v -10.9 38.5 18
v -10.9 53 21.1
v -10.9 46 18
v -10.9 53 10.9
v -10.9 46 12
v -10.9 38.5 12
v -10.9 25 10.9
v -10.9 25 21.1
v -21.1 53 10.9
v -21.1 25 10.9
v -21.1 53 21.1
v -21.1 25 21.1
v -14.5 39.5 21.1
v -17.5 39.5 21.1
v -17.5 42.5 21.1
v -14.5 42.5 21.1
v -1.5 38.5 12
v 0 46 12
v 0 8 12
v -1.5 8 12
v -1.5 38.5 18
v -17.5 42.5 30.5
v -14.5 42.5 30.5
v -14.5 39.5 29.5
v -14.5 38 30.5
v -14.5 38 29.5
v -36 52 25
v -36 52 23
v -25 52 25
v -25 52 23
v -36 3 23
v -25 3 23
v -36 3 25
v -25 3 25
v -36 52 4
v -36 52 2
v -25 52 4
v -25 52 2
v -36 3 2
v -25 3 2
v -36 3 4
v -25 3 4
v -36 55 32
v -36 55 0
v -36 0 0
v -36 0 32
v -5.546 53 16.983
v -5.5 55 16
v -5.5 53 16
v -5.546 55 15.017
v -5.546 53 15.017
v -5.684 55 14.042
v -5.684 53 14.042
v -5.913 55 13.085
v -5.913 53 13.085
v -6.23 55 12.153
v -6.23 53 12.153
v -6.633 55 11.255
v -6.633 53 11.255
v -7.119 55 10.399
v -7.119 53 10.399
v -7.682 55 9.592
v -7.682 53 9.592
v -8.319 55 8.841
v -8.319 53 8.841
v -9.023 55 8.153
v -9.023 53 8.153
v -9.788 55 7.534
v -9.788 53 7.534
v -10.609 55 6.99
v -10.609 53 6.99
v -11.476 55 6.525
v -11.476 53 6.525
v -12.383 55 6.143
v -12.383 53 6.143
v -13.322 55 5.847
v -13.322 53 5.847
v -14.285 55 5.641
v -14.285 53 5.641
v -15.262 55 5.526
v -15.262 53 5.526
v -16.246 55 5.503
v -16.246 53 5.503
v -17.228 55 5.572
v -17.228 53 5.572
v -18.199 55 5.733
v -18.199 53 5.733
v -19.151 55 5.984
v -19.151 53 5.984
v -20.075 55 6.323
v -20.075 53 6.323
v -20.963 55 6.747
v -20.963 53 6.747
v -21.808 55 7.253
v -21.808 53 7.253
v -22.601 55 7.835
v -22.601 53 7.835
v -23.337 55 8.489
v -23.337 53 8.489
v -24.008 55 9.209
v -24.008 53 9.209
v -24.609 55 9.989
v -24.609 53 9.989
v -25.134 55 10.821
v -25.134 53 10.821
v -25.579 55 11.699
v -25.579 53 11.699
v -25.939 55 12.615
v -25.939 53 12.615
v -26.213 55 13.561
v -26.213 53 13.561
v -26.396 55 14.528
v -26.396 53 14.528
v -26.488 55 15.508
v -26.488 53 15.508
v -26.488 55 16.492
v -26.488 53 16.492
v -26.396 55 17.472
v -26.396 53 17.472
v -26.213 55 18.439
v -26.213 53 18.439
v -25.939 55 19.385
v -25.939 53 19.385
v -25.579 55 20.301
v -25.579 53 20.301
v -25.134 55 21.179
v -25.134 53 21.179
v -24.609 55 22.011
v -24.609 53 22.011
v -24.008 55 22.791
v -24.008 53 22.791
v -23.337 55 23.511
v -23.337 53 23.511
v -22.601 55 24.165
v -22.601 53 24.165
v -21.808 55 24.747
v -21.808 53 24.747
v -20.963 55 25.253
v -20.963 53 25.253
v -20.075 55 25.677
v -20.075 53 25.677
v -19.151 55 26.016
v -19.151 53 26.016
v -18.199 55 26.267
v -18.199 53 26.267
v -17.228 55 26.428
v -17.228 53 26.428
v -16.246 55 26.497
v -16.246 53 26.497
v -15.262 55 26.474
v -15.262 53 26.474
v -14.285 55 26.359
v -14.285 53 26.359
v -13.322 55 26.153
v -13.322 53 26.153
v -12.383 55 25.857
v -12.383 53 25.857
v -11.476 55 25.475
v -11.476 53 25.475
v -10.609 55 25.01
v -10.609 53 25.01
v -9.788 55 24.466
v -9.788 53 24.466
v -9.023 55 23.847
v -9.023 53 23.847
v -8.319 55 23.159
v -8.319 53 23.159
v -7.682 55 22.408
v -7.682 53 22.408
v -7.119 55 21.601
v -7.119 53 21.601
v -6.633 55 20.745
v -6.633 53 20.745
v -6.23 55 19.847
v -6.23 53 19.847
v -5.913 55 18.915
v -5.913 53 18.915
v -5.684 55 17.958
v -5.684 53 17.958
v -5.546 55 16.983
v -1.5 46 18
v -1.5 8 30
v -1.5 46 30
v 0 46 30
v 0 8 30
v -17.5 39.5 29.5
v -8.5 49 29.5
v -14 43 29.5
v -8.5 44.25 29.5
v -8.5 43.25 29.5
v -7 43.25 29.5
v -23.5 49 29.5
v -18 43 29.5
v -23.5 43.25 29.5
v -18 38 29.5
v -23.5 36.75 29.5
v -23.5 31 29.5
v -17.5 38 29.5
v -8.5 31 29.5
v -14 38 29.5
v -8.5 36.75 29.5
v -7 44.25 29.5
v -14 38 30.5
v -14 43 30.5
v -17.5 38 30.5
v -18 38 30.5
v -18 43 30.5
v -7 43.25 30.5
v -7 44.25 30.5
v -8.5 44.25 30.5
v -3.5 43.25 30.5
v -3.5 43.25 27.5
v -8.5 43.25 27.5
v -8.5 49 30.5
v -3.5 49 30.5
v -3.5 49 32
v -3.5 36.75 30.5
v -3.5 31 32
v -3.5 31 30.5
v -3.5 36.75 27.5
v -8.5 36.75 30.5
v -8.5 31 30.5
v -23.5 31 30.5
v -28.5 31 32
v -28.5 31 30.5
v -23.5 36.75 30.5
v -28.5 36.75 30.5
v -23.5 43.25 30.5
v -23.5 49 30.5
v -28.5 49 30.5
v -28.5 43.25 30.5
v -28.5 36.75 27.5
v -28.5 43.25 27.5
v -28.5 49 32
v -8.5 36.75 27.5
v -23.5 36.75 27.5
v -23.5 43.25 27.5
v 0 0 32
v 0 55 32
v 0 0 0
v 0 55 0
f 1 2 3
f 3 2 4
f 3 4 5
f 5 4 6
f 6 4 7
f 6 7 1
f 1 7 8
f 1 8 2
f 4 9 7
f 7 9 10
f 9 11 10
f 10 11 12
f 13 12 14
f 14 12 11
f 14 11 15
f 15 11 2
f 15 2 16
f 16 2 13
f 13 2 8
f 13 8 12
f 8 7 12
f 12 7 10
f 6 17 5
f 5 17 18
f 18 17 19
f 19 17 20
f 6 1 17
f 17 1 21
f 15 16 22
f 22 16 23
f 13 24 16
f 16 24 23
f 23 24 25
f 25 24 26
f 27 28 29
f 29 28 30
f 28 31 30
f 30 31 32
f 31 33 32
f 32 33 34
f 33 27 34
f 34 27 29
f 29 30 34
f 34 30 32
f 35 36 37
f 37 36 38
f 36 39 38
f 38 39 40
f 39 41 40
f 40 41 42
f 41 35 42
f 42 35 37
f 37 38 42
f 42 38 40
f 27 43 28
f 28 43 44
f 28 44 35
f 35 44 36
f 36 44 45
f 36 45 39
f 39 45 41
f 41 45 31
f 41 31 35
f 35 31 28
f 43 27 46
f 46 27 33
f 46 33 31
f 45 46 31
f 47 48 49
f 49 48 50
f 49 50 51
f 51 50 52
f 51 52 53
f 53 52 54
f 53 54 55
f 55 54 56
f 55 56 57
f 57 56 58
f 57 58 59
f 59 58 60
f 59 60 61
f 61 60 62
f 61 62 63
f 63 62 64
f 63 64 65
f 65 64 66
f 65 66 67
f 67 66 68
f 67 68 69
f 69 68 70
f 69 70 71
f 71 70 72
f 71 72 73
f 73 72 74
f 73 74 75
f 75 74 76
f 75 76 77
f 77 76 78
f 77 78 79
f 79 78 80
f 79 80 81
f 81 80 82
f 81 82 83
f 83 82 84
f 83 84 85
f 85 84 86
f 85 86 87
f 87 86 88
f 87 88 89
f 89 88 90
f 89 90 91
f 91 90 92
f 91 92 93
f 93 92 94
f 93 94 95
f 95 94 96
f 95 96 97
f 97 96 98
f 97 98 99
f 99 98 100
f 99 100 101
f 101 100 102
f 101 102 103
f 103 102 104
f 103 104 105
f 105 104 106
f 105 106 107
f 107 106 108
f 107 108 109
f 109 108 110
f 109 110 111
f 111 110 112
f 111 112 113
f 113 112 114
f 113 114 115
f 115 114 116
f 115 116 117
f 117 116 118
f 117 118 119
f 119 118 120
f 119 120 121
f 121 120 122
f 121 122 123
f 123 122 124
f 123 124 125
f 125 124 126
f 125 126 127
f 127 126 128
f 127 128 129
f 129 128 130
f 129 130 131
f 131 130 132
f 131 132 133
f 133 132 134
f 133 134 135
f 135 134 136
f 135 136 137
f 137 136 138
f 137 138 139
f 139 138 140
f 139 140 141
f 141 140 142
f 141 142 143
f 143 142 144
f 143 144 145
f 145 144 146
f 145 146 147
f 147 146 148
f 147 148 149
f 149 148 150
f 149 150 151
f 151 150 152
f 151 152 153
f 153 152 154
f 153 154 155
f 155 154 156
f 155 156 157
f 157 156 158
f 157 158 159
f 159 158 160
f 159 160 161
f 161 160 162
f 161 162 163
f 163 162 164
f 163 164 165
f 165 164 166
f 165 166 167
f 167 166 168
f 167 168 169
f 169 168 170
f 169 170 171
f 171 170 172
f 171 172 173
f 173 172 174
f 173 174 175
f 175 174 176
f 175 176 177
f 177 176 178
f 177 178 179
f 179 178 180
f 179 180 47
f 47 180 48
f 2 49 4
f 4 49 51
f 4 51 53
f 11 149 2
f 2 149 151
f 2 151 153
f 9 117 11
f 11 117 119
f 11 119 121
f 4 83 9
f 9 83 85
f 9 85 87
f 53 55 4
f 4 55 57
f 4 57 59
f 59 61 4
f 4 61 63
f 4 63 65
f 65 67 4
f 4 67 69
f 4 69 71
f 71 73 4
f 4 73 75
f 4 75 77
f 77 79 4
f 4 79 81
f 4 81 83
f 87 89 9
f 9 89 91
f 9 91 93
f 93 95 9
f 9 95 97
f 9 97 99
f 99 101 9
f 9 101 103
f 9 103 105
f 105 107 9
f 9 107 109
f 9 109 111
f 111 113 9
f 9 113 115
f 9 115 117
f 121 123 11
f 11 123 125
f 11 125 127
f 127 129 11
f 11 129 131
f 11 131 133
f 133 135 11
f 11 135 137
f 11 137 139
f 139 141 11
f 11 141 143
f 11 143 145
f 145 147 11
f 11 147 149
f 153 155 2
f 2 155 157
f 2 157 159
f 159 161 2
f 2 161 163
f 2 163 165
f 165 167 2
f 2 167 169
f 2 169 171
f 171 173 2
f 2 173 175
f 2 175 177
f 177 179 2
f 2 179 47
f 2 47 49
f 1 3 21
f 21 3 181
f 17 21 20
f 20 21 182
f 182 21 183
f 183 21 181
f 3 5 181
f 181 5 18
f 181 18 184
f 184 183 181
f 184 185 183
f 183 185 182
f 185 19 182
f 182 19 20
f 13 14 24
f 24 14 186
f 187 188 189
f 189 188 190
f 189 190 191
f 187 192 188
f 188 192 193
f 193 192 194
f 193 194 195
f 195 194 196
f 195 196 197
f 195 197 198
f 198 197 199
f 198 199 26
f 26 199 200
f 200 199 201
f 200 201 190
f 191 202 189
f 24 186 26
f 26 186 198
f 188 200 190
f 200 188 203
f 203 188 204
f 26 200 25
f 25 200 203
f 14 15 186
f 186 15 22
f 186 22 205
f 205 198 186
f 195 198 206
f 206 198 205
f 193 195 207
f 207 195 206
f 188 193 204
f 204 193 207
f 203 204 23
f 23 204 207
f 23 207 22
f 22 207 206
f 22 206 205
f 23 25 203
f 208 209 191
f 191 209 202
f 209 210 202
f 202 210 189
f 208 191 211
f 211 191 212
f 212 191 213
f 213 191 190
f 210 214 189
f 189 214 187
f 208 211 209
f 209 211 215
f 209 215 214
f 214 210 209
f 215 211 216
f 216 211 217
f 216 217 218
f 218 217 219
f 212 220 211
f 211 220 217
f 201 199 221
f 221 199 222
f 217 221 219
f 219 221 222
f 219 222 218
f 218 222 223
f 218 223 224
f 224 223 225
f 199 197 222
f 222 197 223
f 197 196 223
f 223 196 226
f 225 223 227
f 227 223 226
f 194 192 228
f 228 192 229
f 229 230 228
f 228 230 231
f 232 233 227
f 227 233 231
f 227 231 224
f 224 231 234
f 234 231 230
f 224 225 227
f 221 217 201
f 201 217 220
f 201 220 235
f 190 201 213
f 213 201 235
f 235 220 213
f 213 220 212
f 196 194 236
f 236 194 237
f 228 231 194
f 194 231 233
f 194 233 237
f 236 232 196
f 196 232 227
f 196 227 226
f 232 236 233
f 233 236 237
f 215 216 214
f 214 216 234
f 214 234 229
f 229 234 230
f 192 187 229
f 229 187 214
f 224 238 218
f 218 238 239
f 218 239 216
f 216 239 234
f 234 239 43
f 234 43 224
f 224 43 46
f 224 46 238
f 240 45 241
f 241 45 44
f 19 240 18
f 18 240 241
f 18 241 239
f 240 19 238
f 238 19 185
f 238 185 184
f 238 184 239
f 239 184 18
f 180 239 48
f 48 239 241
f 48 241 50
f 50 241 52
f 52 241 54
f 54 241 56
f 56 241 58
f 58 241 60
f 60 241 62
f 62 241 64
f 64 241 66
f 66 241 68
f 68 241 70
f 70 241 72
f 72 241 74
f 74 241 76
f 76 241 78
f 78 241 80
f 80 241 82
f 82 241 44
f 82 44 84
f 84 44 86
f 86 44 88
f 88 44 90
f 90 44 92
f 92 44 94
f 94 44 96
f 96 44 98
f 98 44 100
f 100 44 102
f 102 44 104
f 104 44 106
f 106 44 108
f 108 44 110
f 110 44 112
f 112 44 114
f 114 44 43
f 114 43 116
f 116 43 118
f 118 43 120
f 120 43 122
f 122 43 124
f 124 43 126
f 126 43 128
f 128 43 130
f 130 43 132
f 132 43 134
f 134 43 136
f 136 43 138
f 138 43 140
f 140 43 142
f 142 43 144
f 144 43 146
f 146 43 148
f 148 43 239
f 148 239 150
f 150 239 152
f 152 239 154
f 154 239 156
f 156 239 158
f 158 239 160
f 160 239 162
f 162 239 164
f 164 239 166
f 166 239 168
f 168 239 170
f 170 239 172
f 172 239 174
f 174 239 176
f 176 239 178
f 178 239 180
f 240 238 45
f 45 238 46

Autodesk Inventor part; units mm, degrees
ref_plane "YZ Plane" through (0, 0, 0) normal (1, 0, 0) x (0, 1, 0)
ref_plane "XZ Plane" through (0, 0, 0) normal (0, 1, 0) x (-1, 0, 0)
ref_plane "XY Plane" through (0, 0, 0) normal (0, 0, 1) x (1, 0, 0)
sketch "Sketch1" plane through (0, 0, 0) normal (0, 1, 0) x (-1, 0, 0)
  line L0 (32, 32) -> (0, 32)
  line L1 (0, 32) -> (0, 0)
  line L2 (0, 0) -> (32, 0)
  line L3 (32, 0) -> (32, 32)
extrude "Extrusion1" add sketch "Sketch1" along normal blind 55
sketch "Sketch3" plane through (-32, 0, 32) normal (0, 0, 1) x (1, 0, 0)
  line L0 (3.5, 49) -> (28.5, 49)
  line L1 (28.5, 49) -> (28.5, 31)
  line L2 (28.5, 31) -> (3.5, 31)
  line L3 (3.5, 31) -> (3.5, 49)
  line L4 (3.5, 49) -> (3.5, 43.25)
  line L5 (3.5, 36.75) -> (3.5, 43.25)
  line L6 (28.5, 49) -> (28.5, 43.25)
  line L7 (28.5, 36.75) -> (28.5, 43.25)
  line L8 (3.5, 43.25) -> (3.5, 36.75)
  line L9 (28.5, 43.25) -> (28.5, 36.75)
  point P0 (32, 0)
extrude "Extrusion3" cut sketch "Sketch3" against normal blind 2.5
sketch "Sketch4" plane through (-32, 0, 29.5) normal (0, 0, 1) x (1, 0, 0)
  line L0 (3.5, 49) -> (28.5, 49) projected
  line L1 (3.5, 49) -> (3.5, 43.25)
  line L2 (28.5, 31) -> (3.5, 31) projected
  line L3 (3.5, 36.75) -> (3.5, 31)
  line L4 (3.5, 31) -> (28.5, 31)
  line L5 (28.5, 31) -> (28.5, 36.75)
  line L6 (28.5, 49) -> (28.5, 31) projected
  line L7 (28.5, 43.25) -> (28.5, 49)
  line L8 (28.5, 49) -> (3.5, 49)
  point P0 (32, 0)
sketch "Sketch5" plane through (-32, 0, 29.5) normal (0, 0, 1) x (1, 0, 0)
  line L0 (3.5, 43.25) -> (8.5, 43.25)
  line L1 (8.5, 43.25) -> (8.5, 36.75)
  line L2 (8.5, 36.75) -> (3.5, 36.75)
  line L3 (3.5, 36.75) -> (3.5, 43.25)
  point P0 (32, 0)
sketch "Sketch6" plane through (-32, 0, 29.5) normal (0, 0, 1) x (1, 0, 0)
  line L0 (28.5, 43.25) -> (23.5, 43.25)
  line L1 (23.5, 43.25) -> (23.5, 36.75)
  line L2 (23.5, 36.75) -> (28.5, 36.75)
  line L3 (28.5, 36.75) -> (28.5, 43.25)
  point P0 (32, 0)
extrude "Extrusion4" cut sketch "Sketch5" against normal blind 2
extrude "Extrusion5" cut sketch "Sketch6" against normal blind 2
sketch "Sketch7" plane through (-32, 0, 29.5) normal (0, 0, 1) x (1, 0, 0)
  line L0 (3.5, 43.25) -> (8.5, 43.25) projected
  line L1 (3.5, 43.25) -> (3.5, 49) projected
  line L2 (8.5, 43.25) -> (3.5, 43.25)
  line L3 (3.5, 43.25) -> (3.5, 49)
  line L4 (3.5, 49) -> (8.5, 49)
  line L5 (8.5, 49) -> (8.5, 43.25)
  point P0 (32, 0)
sketch "Sketch8" plane through (-32, 0, 29.5) normal (0, 0, 1) x (1, 0, 0)
  line L0 (8.5, 36.75) -> (3.5, 36.75) projected
  line L1 (28.5, 31) -> (3.5, 31) projected
  line L2 (8.5, 36.75) -> (3.5, 36.75)
  line L3 (3.5, 36.75) -> (3.5, 31)
  line L4 (3.5, 31) -> (8.5, 31)
  line L5 (8.5, 31) -> (8.5, 36.75)
  point P0 (32, 0)
sketch "Sketch9" plane through (-32, 0, 29.5) normal (0, 0, 1) x (1, 0, 0)
  line L0 (28.5, 36.75) -> (23.5, 36.75) projected
  line L1 (28.5, 31) -> (3.5, 31) projected
  line L2 (23.5, 36.75) -> (28.5, 36.75)
  line L3 (28.5, 36.75) -> (28.5, 31)
  line L4 (28.5, 31) -> (23.5, 31)
  line L5 (23.5, 31) -> (23.5, 36.75)
  point P0 (32, 0)
sketch "Sketch10" plane through (-32, 0, 29.5) normal (0, 0, 1) x (1, 0, 0)
  line L0 (23.5, 43.25) -> (28.5, 43.25) projected
  line L1 (28.5, 49) -> (28.5, 43.25) projected
  line L2 (23.5, 43.25) -> (28.5, 43.25)
  line L3 (28.5, 43.25) -> (28.5, 49)
  line L4 (28.5, 49) -> (23.5, 49)
  line L5 (23.5, 49) -> (23.5, 43.25)
  point P0 (32, 0)
extrude "Extrusion6" add sketch "Sketch7" along normal blind 1
extrude "Extrusion7" add sketch "Sketch8" along normal blind 1
extrude "Extrusion8" add sketch "Sketch9" along normal blind 1
extrude "Extrusion9" add sketch "Sketch10" along normal blind 1
sketch "Sketch11" plane through (-32, 0, 30.5) normal (0, 0, 1) x (1, 0, 0)
  line L0 (23.5, 43.25) -> (28.5, 43.25) projected
  line L1 (23.5, 43.25) -> (25, 43.25)
  line L2 (25, 43.25) -> (25, 44.25)
  line L3 (25, 44.25) -> (23.5, 44.25)
  line L4 (23.5, 44.25) -> (23.5, 43.25)
  point P0 (32, 0)
extrude "Extrusion10" cut sketch "Sketch11" against normal blind 1
sketch "Sketch12" plane through (-32, 0, 29.5) normal (0, 0, 1) x (1, 0, 0)
  line L0 (8.5, 49) -> (8.5, 43.25) projected
  line L1 (23.5, 31) -> (8.5, 31) projected
  line L2 (23.5, 49) -> (23.5, 44.25) projected
  point P0 (32, 0)
sketch "Sketch13" plane through (-32, 0, 29.5) normal (0, 0, 1) x (1, 0, 0)
  point P0 (32, 0)
sketch "Sketch14" plane through (-32, 0, 29.5) normal (0, 0, 1) x (1, 0, 0)
  line L0 (23.5, 44.25) -> (23.5, 49) projected
  line L1 (23.5, 49) -> (17.5, 49)
  line L2 (14.5, 43) -> (17.5, 43)
  line L3 (17.5, 38) -> (18, 38)
  line L4 (18, 38) -> (18, 43)
  line L5 (18, 43) -> (14, 43)
  line L6 (14, 43) -> (14, 38)
  line L7 (14, 38) -> (14.5, 38)
  line L8 (14.5, 38) -> (14.5, 42)
  line L9 (3.5, 43.25) -> (8.5, 43.25) projected
  line L10 (14.5, 42) -> (14.5, 42.5)
  line L11 (14.5, 42.5) -> (17.5, 42.5)
  line L12 (17.5, 42.5) -> (17.5, 38)
  point P0 (32, 0)
extrude "Extrusion11" add sketch "Sketch14" along normal blind 1
sketch "Sketch15" plane through (-32, 0, 29.5) normal (0, 0, 1) x (1, 0, 0)
  line L0 (14.5, 42.5) -> (14.5, 38) projected
  line L1 (14.5, 42.5) -> (17.5, 42.5)
  line L2 (17.5, 42.5) -> (17.5, 39.5)
  line L3 (17.5, 39.5) -> (14.5, 39.5)
  line L4 (14.5, 39.5) -> (14.5, 42.5)
  point P0 (32, 0)
extrude "Extrusion12" cut sketch "Sketch15" against normal blind 8.5
sketch "Sketch16" plane through (-32, 0, 32) normal (0, 0, 1) x (1, 0, 0)
  point P0 (32, 0)
sketch "Sketch17" plane through (0, 0, 32) normal (1, 0, 0) x (0, 0, -1)
  line L0 (2, 46) -> (20, 46)
  line L1 (20, 46) -> (20, 8)
  line L2 (20, 8) -> (2, 8)
  line L3 (2, 8) -> (2, 46)
  point P0 (32, 0)
extrude "Extrusion13" cut sketch "Sketch17" against normal blind 1.5
sketch "Sketch18" plane through (-1.5, 0, 32) normal (1, 0, 0) x (0, 0, -1)
  line L0 (20, 38.5) -> (14, 38.5)
  line L1 (14, 38.5) -> (14, 46)
  line L2 (14, 46) -> (20, 46)
  line L3 (20, 46) -> (20, 38.5)
  point P0 (32, 0)
extrude "Extrusion14" cut sketch "Sketch18" against normal blind 9.5
sketch "Sketch19" plane through (0, 55, 0) normal (0, 1, 0) x (1, 0, 0)
  circle A0 centre (-16, -16) radius 10.5
  point P0 (0, 0)
sketch "Sketch20" plane through (0, 55, 0) normal (0, 1, 0) x (1, 0, 0)
  point P0 (0, 0)
extrude "Extrusion15" cut sketch "Sketch19" against normal blind 2
sketch "Sketch21" plane through (-32, 0, 0) normal (-1, 0, 0) x (0, 0, 1)
  line L0 (32, 0) -> (32, 55) projected
  line L1 (0, 0) -> (32, 0)
  line L2 (32, 0) -> (32, 55)
  line L3 (32, 55) -> (0, 55)
  line L4 (0, 55) -> (0, 0)
extrude "Extrusion16" add sketch "Sketch21" along normal blind 4
sketch "Sketch22" plane through (-36, 0, 0) normal (-1, 0, 0) x (0, 0, 1)
  line L0 (2, 3) -> (4, 3)
  line L1 (4, 3) -> (4, 52)
  line L2 (4, 52) -> (2, 52)
  line L3 (2, 52) -> (2, 3)
  line L4 (23, 3) -> (25, 3)
  line L5 (25, 3) -> (25, 52)
  line L6 (25, 52) -> (23, 52)
  line L7 (23, 52) -> (23, 3)
  point P0 (0, 0)
extrude "Extrusion17" cut sketch "Sketch22" against normal blind 11
sketch "Sketch24" plane through (-16, 53, 16) normal (0, 1, 0) x (1, 0, 0)
  line L0 (-5.1, 5.1) -> (5.1, 5.1)
  line L1 (5.1, 5.1) -> (5.1, -5.1)
  line L2 (5.1, -5.1) -> (-5.1, -5.1)
  line L3 (-5.1, -5.1) -> (-5.1, 5.1)
  point P0 (16, 16)
extrude "Extrusion19" cut sketch "Sketch24" against normal blind 28
properties part number "Cuvette Holder v2_3DPrint"
